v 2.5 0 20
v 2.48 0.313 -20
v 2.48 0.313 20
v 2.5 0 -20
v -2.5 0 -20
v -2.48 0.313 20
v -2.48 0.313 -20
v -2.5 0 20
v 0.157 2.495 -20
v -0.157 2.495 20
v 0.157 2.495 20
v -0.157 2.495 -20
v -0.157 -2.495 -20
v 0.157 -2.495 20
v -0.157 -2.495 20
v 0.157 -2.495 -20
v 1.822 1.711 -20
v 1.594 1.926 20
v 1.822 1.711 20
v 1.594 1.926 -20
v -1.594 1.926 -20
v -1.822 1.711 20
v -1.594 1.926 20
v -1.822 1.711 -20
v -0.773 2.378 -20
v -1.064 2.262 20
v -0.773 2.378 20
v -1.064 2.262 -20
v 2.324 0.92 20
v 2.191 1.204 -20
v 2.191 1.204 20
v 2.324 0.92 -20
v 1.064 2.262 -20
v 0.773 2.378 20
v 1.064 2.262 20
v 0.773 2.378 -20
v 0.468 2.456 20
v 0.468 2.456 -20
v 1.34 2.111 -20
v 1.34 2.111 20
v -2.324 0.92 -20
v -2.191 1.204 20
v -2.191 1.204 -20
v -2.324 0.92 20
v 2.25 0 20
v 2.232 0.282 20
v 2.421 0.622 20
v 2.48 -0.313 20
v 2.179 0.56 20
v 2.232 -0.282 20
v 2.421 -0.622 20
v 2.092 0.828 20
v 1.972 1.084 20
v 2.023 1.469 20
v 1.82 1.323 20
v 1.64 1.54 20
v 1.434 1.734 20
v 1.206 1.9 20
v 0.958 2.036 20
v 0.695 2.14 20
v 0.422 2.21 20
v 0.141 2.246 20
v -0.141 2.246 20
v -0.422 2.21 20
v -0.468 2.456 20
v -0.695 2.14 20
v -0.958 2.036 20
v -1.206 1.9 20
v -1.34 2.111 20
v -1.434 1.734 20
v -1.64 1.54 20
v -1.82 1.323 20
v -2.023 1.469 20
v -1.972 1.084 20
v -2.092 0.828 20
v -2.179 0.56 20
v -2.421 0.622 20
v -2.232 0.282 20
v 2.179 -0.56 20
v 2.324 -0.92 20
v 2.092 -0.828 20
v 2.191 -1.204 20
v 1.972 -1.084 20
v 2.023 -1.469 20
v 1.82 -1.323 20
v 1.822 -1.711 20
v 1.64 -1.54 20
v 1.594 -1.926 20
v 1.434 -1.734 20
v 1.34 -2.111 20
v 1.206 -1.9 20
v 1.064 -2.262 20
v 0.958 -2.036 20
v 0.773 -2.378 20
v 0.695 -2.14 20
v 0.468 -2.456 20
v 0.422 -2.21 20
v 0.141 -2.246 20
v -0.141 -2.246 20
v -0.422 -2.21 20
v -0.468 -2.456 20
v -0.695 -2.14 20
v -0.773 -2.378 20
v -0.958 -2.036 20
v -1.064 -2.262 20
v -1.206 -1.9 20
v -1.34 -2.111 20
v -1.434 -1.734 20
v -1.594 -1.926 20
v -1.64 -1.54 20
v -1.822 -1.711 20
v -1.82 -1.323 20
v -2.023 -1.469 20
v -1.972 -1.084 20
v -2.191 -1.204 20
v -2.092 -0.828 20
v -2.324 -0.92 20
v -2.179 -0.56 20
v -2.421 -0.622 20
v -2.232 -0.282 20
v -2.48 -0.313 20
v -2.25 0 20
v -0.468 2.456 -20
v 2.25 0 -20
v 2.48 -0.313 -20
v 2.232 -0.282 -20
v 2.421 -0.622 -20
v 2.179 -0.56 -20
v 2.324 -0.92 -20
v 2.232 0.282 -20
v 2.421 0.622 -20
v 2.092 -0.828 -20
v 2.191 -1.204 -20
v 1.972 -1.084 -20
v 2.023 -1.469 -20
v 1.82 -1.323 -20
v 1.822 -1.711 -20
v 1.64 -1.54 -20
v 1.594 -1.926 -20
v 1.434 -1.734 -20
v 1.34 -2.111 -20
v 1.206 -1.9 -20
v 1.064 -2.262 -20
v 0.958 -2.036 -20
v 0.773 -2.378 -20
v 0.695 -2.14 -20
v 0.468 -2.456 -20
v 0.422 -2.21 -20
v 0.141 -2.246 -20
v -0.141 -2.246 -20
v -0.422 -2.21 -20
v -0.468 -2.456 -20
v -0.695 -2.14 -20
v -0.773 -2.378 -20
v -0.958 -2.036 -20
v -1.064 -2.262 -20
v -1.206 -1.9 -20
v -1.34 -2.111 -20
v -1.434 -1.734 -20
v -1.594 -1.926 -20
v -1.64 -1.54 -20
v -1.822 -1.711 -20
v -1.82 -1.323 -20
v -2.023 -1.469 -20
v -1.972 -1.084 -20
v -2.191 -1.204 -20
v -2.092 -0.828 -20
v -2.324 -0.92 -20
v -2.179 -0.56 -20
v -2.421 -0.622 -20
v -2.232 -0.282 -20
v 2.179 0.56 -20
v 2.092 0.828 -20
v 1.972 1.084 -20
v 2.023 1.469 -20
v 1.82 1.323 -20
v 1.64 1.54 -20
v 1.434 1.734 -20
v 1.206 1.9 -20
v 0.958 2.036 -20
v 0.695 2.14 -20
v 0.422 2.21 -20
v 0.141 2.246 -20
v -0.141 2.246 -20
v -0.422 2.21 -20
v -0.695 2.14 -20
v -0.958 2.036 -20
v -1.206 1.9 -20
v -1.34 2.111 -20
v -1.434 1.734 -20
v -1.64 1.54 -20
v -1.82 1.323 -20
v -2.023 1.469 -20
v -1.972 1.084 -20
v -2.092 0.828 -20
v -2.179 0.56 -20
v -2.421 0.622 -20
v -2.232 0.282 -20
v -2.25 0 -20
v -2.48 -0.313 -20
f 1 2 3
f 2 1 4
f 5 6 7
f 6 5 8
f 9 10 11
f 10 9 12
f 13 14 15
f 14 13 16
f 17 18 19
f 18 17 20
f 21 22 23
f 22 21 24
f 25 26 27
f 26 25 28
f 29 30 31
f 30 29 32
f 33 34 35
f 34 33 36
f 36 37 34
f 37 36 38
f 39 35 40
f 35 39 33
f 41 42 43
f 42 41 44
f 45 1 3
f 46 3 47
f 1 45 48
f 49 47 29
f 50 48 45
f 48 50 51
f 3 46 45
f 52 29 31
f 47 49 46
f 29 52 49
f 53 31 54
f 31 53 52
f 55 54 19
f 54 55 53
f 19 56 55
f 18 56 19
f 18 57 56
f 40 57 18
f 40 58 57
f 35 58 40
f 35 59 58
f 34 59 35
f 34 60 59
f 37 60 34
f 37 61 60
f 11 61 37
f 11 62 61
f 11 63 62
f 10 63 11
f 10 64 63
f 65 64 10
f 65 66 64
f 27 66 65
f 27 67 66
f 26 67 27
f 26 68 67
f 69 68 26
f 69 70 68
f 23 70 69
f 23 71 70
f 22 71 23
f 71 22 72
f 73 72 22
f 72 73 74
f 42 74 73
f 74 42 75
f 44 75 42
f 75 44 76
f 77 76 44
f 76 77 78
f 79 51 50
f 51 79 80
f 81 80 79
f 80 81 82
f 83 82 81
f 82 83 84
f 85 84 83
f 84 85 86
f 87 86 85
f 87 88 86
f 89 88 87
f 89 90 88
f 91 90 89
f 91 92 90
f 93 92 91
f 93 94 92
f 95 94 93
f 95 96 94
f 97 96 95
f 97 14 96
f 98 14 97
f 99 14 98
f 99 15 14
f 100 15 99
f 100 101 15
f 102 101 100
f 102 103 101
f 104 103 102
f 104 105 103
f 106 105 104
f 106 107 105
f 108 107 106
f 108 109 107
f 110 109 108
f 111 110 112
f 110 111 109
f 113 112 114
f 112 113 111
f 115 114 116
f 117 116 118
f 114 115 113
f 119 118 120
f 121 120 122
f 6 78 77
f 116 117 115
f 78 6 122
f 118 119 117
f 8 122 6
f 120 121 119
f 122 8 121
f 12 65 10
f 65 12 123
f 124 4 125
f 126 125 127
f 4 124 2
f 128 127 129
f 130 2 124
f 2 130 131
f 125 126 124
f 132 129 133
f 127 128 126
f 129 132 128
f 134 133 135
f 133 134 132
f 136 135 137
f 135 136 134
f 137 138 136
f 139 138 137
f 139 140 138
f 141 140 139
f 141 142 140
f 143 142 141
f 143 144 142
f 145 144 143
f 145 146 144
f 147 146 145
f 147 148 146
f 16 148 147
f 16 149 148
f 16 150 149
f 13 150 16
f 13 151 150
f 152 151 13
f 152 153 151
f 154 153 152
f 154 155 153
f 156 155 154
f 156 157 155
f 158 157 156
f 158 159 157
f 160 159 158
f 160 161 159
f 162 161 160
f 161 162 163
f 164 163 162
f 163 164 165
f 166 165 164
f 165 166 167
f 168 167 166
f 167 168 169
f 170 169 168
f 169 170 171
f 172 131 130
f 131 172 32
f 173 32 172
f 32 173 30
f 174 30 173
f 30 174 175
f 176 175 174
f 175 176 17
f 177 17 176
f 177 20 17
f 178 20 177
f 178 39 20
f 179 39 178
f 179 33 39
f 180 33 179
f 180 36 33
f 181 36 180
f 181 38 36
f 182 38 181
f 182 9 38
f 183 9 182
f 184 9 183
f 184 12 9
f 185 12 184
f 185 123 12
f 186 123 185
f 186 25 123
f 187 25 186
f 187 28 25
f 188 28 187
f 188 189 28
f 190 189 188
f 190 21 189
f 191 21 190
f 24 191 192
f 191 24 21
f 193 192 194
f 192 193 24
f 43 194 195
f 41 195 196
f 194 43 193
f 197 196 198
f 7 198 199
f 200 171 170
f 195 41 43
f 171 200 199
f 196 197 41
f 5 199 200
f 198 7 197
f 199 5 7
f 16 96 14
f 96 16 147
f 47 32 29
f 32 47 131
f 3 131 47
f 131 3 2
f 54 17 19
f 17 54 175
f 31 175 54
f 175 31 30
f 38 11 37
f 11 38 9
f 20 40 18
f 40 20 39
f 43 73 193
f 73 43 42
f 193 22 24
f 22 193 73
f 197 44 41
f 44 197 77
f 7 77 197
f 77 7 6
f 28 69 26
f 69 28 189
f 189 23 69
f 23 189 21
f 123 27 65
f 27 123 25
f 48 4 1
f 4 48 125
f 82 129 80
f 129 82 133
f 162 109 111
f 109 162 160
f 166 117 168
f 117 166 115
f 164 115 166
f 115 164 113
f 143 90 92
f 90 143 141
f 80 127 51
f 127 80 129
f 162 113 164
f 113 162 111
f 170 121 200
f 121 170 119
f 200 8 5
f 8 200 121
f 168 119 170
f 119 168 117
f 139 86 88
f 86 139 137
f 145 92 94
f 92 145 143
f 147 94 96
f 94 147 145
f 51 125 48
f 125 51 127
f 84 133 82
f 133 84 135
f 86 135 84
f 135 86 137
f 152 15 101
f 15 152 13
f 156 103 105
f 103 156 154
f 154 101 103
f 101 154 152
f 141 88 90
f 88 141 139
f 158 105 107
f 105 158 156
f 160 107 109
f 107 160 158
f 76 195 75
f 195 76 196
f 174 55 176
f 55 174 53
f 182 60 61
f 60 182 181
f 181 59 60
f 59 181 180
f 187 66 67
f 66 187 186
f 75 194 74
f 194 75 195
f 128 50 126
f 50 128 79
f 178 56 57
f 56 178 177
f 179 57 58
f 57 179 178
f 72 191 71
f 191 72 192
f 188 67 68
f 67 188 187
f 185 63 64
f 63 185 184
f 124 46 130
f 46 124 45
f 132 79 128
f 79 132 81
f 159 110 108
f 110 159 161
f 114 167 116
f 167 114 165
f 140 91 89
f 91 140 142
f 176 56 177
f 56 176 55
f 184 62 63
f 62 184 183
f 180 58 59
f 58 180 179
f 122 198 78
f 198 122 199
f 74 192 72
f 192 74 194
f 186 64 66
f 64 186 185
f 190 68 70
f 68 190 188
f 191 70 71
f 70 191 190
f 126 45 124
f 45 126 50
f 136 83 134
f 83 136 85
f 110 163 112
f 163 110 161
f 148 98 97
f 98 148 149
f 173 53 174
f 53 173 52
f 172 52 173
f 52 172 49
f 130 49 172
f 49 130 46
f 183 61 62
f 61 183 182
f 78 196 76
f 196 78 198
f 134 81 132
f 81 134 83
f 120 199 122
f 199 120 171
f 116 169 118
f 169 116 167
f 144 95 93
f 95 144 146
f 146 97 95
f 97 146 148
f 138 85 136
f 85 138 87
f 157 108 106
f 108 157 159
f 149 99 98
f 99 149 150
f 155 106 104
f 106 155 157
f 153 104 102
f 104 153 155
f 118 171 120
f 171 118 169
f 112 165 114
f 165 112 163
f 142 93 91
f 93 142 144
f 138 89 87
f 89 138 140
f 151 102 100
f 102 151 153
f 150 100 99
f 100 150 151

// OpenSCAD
$fn = 50;


difference() {
	union() {
		translate(v = [0, 0, -20.0000000000]) {
			cylinder(h = 40, r = 2.5000000000);
		}
	}
	union() {
		translate(v = [0, 0, -100.0000000000]) {
			cylinder(h = 200, r = 2.2500000000);
		}
	}
}
